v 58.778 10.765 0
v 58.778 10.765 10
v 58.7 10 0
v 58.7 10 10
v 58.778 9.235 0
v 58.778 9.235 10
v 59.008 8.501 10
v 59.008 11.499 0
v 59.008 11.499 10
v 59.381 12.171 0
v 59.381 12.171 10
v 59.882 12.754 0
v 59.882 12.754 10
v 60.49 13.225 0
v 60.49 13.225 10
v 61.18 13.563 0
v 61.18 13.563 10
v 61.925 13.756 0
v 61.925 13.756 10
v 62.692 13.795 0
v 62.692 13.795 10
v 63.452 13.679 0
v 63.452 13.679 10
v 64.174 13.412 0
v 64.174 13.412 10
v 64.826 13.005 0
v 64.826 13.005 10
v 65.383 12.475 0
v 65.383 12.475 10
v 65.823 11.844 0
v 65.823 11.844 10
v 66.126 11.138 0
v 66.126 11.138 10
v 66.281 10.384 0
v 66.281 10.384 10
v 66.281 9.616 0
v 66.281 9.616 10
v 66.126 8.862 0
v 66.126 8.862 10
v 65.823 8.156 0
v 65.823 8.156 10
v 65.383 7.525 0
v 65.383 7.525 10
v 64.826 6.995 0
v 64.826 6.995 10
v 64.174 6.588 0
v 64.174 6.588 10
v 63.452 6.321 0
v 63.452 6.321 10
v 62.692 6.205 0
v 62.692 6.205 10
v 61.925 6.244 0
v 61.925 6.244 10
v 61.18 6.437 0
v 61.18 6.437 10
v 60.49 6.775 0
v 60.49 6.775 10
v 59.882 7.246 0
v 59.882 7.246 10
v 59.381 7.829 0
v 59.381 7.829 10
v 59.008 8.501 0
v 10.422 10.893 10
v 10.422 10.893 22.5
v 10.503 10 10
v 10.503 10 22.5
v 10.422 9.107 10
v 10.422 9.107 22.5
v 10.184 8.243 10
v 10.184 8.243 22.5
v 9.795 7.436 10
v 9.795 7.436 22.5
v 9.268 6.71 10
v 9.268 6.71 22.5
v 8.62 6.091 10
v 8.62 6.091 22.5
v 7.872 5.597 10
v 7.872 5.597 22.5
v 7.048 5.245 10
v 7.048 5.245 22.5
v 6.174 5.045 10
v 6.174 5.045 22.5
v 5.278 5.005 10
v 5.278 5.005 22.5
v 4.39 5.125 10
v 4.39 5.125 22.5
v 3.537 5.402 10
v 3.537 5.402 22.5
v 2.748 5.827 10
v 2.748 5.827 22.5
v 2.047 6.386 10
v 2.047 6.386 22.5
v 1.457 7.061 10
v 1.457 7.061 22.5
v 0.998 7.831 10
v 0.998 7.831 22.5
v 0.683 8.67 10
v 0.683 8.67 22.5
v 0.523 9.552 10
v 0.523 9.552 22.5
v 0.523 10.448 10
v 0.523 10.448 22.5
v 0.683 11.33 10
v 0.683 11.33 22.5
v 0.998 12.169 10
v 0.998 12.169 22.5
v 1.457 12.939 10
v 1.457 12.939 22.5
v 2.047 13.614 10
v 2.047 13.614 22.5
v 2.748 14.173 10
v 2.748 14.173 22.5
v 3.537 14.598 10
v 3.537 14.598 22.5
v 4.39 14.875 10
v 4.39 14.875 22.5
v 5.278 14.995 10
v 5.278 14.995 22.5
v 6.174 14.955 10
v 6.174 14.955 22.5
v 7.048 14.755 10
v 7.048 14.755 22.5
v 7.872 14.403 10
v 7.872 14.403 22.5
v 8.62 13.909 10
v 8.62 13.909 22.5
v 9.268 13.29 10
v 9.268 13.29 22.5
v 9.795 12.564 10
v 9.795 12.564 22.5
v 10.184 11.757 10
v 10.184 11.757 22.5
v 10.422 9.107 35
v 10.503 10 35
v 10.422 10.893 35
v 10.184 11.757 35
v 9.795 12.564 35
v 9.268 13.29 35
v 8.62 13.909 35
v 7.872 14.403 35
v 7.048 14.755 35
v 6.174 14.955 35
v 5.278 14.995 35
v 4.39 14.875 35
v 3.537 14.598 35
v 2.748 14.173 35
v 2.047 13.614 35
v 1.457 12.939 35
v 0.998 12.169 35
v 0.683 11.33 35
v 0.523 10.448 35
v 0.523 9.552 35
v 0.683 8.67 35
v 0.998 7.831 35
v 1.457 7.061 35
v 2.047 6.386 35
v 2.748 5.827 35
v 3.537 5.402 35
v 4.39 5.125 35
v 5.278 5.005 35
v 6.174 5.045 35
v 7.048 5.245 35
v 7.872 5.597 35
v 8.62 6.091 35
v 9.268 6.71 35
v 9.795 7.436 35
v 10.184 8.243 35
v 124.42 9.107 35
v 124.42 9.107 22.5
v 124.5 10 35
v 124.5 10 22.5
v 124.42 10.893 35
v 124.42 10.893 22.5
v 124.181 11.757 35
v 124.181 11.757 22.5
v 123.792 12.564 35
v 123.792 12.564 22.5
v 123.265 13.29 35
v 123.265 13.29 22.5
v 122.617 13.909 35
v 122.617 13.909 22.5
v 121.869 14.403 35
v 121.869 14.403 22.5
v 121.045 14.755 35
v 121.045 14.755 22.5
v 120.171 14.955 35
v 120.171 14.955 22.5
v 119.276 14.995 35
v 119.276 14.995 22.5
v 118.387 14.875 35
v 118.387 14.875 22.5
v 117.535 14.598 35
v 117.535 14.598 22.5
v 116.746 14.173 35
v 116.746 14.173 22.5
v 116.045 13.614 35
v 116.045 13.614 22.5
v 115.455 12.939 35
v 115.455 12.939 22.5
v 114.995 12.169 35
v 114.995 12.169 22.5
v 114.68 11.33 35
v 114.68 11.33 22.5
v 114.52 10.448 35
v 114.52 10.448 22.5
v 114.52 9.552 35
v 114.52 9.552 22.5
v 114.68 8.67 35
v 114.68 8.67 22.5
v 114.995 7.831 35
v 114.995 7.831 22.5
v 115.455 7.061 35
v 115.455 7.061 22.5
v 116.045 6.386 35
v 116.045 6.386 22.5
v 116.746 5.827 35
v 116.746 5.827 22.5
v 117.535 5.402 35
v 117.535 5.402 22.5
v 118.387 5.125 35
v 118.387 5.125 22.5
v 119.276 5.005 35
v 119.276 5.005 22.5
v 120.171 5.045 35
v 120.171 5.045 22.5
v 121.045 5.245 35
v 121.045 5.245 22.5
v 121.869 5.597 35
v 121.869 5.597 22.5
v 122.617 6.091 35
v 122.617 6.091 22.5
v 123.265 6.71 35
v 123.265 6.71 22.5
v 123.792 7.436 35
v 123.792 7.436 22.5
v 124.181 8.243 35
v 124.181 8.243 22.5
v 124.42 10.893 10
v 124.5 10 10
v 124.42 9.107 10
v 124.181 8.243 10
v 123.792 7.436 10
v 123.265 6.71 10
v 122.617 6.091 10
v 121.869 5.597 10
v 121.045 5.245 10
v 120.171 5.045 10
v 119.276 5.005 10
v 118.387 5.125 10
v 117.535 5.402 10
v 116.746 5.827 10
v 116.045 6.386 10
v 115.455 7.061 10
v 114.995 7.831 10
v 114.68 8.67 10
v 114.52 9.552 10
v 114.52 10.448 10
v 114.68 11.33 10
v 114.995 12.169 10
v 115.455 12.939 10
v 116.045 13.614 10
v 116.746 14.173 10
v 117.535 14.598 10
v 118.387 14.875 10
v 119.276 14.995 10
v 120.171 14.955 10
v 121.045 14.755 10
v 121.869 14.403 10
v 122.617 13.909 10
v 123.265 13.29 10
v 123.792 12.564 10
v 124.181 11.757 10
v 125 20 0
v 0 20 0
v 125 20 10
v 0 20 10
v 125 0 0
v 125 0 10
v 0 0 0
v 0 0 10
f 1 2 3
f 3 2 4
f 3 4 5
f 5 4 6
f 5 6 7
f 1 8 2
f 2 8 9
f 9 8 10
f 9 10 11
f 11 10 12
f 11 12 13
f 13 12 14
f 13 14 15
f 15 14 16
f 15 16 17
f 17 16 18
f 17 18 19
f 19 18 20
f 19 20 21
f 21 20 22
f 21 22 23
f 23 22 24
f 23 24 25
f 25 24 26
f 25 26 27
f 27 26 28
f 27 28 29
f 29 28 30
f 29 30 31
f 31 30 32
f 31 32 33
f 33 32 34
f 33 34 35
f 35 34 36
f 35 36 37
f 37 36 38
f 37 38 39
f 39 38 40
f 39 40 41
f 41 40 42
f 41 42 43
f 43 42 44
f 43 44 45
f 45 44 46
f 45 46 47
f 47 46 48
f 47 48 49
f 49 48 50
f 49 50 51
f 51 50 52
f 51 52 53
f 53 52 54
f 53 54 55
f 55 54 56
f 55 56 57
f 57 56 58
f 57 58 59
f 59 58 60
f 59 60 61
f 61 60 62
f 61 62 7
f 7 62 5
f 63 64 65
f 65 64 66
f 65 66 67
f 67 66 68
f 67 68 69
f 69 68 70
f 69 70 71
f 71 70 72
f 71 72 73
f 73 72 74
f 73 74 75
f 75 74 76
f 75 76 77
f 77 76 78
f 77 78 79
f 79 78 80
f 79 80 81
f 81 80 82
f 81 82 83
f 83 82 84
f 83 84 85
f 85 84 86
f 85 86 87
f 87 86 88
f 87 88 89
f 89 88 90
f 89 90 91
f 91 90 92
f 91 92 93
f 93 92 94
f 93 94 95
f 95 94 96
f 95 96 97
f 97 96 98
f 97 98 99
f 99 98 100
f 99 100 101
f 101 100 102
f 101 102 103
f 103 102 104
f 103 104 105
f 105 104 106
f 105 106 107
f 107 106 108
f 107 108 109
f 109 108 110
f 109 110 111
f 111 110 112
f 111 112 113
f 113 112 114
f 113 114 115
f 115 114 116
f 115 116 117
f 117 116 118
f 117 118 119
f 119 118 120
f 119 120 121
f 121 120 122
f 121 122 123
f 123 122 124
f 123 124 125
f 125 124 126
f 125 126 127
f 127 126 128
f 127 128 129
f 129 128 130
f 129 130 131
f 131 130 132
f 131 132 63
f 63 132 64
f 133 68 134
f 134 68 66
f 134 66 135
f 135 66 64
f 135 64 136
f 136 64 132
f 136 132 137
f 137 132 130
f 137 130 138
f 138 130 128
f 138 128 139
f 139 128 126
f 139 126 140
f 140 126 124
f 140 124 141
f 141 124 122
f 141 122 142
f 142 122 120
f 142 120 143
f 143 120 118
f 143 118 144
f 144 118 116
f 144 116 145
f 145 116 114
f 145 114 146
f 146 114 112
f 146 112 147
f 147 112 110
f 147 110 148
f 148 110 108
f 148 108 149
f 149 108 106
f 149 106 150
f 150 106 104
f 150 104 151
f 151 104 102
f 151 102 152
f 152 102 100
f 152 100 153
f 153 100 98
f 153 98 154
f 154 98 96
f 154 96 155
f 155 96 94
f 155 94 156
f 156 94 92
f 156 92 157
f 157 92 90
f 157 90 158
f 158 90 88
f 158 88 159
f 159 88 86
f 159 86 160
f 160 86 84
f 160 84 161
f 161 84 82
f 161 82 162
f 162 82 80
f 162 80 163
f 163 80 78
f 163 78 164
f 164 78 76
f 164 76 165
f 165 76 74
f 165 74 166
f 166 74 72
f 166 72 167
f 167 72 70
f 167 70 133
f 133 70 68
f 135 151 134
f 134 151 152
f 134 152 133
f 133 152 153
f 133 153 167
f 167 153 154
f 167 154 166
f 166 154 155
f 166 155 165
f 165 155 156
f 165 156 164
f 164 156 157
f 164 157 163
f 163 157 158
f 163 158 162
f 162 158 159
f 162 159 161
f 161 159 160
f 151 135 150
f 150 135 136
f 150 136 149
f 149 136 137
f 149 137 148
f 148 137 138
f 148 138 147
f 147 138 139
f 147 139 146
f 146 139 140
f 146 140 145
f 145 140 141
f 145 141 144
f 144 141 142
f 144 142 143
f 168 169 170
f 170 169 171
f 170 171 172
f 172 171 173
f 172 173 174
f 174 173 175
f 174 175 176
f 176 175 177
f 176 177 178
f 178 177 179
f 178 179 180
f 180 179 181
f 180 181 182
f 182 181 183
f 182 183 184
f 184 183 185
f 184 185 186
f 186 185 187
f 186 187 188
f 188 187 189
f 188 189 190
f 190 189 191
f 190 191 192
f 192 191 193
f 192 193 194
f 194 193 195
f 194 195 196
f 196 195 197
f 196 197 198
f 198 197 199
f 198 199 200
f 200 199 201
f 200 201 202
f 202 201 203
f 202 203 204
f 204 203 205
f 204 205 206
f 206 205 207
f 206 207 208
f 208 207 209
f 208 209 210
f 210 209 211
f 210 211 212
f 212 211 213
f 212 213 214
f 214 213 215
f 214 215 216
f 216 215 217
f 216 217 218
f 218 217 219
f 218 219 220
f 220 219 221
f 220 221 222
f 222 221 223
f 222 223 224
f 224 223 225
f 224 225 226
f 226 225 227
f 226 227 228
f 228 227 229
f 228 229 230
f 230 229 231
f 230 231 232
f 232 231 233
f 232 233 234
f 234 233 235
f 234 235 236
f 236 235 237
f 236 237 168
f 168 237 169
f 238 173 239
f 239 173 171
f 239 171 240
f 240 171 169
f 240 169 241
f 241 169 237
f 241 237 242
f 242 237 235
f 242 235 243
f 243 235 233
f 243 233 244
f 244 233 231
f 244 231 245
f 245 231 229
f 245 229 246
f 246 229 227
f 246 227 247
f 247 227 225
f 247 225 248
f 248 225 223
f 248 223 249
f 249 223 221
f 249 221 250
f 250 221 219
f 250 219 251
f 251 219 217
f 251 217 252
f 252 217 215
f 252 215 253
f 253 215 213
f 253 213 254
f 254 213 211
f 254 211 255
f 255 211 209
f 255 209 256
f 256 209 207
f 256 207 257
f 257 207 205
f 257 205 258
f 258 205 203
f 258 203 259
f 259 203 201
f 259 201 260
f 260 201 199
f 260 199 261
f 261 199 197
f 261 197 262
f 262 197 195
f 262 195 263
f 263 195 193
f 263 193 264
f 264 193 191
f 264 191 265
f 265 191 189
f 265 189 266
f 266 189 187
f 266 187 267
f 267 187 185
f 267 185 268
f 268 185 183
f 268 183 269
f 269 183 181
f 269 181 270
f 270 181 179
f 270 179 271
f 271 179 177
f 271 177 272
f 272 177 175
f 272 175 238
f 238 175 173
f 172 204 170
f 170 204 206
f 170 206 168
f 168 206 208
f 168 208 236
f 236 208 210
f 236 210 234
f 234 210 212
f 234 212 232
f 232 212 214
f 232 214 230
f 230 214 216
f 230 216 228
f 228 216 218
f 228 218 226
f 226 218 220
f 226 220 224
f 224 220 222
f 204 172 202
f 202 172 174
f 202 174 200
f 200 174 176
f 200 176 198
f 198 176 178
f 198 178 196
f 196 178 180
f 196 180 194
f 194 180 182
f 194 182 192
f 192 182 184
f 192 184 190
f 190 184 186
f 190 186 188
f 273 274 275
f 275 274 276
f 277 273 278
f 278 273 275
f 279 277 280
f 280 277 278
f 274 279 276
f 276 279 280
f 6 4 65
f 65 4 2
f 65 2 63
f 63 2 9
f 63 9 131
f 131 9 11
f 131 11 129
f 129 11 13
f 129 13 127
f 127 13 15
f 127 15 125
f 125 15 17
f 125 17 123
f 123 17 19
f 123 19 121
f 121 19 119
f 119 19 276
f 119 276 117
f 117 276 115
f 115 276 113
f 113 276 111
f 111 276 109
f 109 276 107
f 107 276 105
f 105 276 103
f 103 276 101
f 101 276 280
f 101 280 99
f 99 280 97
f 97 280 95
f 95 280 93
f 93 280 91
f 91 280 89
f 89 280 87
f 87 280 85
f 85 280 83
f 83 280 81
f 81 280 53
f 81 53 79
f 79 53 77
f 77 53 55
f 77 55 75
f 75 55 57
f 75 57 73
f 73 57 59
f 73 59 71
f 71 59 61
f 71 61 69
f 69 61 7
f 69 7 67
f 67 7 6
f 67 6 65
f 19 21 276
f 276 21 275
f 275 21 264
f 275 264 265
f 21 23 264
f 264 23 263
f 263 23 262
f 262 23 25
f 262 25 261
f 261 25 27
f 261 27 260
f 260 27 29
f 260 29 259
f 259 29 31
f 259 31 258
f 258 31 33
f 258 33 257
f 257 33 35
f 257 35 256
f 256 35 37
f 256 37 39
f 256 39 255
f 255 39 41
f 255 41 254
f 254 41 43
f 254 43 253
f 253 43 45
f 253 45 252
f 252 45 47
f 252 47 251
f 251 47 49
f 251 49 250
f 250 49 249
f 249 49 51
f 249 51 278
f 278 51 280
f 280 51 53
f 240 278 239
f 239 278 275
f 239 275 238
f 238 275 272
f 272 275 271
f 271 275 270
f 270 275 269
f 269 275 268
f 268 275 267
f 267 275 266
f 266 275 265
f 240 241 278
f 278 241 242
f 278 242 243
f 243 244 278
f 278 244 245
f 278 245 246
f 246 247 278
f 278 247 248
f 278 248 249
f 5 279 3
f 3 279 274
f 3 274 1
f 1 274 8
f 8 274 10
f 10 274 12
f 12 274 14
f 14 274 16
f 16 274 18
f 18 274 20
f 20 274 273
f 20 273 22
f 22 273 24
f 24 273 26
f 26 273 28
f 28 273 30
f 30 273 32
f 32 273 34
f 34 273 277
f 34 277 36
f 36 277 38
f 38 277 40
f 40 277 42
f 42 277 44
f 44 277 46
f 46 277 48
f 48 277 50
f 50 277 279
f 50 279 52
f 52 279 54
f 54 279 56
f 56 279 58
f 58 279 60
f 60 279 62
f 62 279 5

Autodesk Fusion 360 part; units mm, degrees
sketch "Skizze1" plane through (0, 0, 0) normal (0, 0, 1) x (1, 0, 0)
  line L0 (0, 0) -> (125, 0)
  line L1 (125, 0) -> (125, 20)
  line L2 (125, 20) -> (0, 20)
  line L3 (0, 20) -> (0, 0)
  dimension "d1" = 125
  dimension "d2" = 20
extrude "Extrusion1" add sketch "Skizze1" along normal blind 10
sketch "Skizze2" plane through (0, 0, 10) normal (0, 0, 1) x (-1, 0, 0)
  line L0 (0, -20) -> (0, 0)
  line L1 (0, 0) -> (-125, 0)
  line L2 (-125, 0) -> (-125, -20)
  line L3 (-125, -20) -> (0, -20)
  circle A0 centre (-62.5, -10) radius 3.75
  dimension "d5" = 7.5
extrude "Extrusion2" cut sketch "Skizze2" against normal blind 10 contours A0
sketch "Skizze3" plane through (0, 0, 10) normal (0, 0, 1) x (-1, 0, 0)
  circle A0 centre (-62.5, -10) radius 3.75
  line L0 (0, -20) -> (0, 0)
  line L1 (0, 0) -> (-125, 0)
  line L2 (-125, 0) -> (-125, -20)
  line L3 (-125, -20) -> (0, -20)
  curve L4
  curve L5
  line L6 (-125, -10) -> (-119.5, -10)
  circle A1 centre (-5.5026, -10) radius 5
  circle A2 centre (-119.5, -10) radius 5
  dimension "d8" = 5.5
  dimension "d9" = 5.5
  dimension "d10" = 10
  dimension "d13" = 10
extrude "Extrusion4" add sketch "Skizze3" along normal blind 25 contours A2 | A1
extrude "Extrusion3" add sketch "Skizze3" along normal blind 10 contours A1
sketch "Skizze4" plane through (0, 0, 10) normal (0, 0, 1) x (1, 0, 0)
  circle A0 centre (62.5, 10) radius 3.8
  point P0 (62.5, 10)
  dimension "d16" = 7.6
extrude "Extrusion5" cut sketch "Skizze4" against normal blind 20
sketch "Skizze5" plane through (0, 0, 10) normal (0, 0, 1) x (1, 0, 0)
